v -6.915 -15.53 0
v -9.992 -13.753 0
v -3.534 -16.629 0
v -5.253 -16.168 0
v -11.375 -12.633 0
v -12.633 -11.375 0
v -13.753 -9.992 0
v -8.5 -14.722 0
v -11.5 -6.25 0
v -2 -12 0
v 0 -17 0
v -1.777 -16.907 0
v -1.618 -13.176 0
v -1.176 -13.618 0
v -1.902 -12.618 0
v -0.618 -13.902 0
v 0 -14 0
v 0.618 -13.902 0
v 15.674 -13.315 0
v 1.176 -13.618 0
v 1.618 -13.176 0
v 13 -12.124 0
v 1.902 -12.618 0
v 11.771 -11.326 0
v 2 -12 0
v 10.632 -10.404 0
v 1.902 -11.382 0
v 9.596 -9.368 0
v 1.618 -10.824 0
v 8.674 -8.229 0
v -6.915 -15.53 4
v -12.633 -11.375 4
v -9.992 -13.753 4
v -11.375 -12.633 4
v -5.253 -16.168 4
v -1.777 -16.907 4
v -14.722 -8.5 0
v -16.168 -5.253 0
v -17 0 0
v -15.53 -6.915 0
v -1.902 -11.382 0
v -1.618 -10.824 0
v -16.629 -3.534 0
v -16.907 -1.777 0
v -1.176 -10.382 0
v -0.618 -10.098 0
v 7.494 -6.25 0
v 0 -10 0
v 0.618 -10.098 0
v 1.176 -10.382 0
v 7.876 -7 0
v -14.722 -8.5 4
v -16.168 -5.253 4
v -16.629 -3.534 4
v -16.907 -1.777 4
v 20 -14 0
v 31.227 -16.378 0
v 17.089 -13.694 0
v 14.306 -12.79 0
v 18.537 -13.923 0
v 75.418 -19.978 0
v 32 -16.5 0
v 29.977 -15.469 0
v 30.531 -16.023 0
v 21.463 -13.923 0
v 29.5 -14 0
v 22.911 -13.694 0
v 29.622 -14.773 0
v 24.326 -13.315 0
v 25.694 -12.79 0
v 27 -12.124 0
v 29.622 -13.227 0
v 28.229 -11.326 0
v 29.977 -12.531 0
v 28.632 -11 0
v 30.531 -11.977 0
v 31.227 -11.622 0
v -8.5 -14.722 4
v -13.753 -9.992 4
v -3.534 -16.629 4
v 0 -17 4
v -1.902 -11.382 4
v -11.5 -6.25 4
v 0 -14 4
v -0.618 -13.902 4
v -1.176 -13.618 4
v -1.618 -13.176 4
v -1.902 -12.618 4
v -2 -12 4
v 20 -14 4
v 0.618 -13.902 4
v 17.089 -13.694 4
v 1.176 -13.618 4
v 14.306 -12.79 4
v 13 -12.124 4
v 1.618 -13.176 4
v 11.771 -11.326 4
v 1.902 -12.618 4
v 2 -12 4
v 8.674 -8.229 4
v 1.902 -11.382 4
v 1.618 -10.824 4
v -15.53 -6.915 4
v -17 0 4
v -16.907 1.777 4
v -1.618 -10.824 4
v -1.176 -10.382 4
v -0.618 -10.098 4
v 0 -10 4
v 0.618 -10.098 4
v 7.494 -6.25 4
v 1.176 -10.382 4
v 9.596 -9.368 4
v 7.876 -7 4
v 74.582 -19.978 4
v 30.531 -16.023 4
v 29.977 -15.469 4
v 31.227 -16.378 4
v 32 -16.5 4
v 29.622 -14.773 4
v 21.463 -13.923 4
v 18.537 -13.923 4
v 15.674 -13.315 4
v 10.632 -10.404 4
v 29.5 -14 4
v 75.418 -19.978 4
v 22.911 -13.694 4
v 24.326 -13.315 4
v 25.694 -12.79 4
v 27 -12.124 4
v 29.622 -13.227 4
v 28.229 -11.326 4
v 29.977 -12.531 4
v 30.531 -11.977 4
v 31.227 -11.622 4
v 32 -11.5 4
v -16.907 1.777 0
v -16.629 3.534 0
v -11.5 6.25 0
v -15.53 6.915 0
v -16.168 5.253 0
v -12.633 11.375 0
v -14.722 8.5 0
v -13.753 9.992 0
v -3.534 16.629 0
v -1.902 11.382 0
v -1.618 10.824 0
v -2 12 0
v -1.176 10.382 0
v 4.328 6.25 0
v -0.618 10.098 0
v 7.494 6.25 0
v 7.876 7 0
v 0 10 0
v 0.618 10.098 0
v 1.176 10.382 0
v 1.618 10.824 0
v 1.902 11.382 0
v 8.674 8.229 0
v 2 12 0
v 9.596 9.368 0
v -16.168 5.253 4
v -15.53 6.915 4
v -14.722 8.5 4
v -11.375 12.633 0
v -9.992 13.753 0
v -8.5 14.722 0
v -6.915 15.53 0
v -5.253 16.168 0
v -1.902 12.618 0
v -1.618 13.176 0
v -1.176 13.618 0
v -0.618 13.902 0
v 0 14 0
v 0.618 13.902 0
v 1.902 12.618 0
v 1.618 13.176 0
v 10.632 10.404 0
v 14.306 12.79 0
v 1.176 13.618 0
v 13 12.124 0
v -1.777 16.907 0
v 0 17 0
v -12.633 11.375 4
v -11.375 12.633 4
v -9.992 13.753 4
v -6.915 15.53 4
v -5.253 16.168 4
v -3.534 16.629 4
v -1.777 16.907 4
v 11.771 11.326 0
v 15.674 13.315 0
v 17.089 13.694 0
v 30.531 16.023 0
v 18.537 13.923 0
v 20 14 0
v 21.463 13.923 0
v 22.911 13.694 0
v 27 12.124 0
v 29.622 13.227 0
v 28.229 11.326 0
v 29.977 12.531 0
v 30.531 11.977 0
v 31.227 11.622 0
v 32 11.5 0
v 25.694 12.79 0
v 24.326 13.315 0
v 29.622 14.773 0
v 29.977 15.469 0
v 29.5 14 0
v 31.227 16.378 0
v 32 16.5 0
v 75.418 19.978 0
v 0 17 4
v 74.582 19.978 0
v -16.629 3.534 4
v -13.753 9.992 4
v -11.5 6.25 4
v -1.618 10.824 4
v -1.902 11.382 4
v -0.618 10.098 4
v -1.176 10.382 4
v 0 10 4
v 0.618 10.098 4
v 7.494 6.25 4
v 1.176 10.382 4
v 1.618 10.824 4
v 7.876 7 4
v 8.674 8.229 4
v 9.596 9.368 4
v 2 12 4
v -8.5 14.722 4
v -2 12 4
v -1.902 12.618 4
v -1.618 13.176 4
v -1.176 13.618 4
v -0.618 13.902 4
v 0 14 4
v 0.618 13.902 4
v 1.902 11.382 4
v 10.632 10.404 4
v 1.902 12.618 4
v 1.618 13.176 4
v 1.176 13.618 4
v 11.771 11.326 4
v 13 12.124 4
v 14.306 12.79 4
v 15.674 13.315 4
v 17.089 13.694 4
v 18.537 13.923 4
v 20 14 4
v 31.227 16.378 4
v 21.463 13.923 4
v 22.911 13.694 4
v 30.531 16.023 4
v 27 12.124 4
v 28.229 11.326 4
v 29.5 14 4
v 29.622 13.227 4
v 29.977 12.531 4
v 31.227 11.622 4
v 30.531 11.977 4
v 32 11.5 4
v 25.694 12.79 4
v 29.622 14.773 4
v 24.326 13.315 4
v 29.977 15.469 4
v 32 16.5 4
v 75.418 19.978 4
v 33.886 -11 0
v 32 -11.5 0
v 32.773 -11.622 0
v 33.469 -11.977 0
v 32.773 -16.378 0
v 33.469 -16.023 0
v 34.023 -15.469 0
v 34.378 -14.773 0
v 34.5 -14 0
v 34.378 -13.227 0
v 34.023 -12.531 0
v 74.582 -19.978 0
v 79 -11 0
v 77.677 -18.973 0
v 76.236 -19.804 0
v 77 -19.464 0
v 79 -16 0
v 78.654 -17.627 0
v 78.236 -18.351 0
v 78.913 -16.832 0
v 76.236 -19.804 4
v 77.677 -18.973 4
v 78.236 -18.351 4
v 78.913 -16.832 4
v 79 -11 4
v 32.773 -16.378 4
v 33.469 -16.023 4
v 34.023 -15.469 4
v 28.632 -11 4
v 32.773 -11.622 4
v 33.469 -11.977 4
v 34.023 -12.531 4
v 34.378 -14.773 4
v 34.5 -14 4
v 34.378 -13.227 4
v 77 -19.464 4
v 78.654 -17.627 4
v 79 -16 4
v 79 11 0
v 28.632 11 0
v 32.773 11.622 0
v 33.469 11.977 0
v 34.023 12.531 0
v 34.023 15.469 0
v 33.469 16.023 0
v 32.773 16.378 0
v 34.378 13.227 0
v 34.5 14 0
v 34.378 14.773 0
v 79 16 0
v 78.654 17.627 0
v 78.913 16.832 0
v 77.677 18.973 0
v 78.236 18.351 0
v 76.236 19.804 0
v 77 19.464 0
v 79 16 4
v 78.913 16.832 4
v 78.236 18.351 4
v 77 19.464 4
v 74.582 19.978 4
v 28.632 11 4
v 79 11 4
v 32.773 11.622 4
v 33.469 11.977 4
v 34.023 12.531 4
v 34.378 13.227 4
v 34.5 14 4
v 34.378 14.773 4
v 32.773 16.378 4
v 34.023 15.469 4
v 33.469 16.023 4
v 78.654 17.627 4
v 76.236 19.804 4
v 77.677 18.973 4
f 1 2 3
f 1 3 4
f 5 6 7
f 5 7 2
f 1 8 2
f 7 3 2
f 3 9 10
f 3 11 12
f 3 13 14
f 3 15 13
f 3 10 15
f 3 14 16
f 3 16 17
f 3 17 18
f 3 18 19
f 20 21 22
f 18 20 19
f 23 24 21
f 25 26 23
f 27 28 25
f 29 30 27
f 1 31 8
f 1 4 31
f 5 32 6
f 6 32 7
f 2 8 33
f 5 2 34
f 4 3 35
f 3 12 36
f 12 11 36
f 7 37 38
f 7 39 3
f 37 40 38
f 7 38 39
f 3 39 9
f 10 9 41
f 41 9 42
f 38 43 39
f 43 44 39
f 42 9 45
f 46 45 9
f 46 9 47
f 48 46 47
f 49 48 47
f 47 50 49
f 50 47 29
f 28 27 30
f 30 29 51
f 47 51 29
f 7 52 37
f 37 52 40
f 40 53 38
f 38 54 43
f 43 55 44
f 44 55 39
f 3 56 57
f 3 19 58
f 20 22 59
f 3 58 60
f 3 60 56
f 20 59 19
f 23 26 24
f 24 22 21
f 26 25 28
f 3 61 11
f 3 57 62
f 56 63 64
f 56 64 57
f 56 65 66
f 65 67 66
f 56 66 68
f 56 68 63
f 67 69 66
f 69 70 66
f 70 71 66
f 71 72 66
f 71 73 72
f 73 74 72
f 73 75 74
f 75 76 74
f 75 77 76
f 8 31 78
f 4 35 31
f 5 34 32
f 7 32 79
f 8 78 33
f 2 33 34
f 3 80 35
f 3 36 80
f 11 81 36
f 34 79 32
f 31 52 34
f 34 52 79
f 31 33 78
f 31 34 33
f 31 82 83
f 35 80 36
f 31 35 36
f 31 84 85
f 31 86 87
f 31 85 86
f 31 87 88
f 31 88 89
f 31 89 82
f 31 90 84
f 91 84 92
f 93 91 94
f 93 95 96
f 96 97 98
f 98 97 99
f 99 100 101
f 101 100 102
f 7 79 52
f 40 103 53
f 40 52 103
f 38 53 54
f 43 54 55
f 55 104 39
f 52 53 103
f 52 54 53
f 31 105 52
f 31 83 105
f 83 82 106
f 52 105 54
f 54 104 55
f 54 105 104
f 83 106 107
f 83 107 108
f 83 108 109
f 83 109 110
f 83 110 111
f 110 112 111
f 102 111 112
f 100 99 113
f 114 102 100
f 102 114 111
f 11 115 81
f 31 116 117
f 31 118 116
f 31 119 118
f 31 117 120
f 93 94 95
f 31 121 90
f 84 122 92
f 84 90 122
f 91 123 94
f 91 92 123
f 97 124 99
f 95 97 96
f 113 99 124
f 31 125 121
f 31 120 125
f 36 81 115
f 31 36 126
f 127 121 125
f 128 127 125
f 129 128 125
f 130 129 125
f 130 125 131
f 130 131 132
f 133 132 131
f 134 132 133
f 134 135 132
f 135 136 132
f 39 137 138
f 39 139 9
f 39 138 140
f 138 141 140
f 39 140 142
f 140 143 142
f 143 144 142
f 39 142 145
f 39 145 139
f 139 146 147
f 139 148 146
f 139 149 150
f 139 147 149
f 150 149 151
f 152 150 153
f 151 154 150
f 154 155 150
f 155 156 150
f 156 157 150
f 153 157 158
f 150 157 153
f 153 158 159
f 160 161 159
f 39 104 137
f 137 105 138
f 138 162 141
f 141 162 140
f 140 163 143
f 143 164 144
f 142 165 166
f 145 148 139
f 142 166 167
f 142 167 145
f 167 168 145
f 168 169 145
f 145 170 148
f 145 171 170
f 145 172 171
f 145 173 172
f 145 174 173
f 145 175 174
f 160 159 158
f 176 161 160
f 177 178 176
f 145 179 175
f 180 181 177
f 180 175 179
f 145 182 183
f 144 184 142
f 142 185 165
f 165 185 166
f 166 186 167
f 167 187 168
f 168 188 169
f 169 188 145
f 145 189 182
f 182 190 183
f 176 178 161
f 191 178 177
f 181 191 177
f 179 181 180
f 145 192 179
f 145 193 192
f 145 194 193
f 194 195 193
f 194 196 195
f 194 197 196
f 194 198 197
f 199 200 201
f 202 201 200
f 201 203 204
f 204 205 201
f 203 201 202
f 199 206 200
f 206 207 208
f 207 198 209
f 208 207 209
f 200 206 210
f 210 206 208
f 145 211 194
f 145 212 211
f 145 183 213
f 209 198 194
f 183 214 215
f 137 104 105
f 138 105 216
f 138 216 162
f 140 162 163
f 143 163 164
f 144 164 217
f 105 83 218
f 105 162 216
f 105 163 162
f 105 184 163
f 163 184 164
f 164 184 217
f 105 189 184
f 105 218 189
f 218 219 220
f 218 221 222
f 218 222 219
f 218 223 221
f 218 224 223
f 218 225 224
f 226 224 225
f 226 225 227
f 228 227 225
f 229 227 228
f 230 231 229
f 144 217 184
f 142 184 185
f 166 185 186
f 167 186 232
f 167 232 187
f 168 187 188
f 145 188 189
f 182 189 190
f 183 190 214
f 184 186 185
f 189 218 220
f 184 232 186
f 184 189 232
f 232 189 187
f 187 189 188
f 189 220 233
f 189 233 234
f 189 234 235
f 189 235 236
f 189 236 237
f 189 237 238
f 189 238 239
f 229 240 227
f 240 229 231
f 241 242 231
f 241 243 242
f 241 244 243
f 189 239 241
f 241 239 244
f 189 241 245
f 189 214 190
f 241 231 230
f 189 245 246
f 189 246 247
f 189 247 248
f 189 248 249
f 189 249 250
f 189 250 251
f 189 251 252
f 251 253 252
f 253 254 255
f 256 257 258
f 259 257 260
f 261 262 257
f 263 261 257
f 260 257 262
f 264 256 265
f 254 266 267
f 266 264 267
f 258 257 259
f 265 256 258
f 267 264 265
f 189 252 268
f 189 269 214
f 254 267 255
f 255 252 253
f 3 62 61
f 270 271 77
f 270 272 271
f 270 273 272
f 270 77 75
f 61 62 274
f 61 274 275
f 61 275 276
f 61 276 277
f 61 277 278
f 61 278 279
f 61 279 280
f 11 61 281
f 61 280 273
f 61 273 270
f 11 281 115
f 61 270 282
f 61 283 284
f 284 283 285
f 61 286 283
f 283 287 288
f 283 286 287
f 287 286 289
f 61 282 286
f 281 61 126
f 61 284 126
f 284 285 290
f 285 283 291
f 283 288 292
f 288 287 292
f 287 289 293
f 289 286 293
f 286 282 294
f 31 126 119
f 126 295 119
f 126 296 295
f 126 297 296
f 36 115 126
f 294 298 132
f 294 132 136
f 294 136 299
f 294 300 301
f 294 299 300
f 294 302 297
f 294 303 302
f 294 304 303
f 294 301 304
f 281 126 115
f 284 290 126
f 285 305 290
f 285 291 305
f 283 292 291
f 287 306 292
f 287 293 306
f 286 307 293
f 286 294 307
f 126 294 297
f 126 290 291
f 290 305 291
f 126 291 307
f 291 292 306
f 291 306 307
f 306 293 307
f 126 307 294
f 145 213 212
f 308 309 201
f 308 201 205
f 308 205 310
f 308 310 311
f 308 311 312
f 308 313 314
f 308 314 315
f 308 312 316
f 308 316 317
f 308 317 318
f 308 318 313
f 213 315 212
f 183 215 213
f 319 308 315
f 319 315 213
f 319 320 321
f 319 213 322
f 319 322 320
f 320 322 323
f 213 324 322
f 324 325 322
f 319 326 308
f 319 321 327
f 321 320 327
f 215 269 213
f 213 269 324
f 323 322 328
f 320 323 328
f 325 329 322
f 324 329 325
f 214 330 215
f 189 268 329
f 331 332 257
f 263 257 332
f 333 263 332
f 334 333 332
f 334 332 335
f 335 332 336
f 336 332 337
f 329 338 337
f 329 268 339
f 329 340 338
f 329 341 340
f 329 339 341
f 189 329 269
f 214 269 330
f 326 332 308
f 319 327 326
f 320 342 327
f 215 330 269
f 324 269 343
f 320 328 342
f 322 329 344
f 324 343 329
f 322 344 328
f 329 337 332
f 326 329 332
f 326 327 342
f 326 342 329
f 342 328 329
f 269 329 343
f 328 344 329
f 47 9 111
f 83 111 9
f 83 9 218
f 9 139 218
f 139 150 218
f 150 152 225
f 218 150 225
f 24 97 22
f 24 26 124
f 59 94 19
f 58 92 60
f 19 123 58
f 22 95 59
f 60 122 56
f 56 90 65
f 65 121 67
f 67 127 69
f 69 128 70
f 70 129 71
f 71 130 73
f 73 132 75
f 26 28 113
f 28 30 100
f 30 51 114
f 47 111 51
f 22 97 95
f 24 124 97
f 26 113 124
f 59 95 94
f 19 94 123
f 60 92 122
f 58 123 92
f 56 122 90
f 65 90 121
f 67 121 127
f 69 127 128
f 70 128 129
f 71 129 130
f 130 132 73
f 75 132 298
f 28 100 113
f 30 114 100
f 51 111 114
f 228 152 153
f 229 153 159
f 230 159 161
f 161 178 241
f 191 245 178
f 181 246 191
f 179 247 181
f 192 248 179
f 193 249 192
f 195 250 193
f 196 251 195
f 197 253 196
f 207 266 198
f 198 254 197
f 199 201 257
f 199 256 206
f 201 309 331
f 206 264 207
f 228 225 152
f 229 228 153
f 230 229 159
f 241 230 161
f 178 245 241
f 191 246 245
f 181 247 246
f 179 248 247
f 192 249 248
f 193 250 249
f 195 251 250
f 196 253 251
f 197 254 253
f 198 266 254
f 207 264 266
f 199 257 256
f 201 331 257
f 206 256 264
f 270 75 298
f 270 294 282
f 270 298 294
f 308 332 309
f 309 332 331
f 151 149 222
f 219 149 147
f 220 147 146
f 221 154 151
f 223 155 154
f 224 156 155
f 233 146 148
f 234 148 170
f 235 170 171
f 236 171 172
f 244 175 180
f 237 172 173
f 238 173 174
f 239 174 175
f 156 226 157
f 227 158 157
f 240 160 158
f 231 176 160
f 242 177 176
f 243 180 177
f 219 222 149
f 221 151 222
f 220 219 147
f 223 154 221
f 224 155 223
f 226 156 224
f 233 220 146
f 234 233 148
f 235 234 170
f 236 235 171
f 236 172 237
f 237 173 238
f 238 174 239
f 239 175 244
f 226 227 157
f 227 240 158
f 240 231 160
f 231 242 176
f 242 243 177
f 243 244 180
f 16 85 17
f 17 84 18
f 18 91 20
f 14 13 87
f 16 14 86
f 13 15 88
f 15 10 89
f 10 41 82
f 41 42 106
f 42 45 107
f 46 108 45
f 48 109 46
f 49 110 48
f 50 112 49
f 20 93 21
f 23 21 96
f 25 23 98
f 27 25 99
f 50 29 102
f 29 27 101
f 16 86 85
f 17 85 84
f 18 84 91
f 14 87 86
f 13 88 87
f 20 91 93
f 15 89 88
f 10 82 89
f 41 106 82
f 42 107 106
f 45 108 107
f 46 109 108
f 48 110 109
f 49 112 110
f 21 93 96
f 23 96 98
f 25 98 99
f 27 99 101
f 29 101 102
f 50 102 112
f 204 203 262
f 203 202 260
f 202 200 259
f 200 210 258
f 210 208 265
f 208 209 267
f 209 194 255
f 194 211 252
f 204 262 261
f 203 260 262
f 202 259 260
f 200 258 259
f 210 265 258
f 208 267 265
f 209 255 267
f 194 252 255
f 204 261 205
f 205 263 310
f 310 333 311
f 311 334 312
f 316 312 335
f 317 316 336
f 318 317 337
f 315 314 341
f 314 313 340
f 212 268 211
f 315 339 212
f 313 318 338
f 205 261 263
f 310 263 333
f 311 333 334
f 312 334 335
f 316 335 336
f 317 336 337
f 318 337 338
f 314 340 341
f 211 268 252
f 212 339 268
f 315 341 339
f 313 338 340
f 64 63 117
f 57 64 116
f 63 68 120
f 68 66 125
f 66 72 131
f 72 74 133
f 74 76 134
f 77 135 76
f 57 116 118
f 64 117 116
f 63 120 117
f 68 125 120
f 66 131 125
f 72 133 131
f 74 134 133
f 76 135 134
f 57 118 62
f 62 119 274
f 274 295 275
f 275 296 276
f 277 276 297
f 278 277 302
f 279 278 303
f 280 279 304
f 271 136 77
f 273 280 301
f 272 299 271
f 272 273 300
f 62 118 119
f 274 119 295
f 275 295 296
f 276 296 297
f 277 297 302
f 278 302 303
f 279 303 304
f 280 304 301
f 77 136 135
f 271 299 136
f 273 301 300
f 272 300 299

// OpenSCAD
// --- Módulo MMA-01 Sentinela: Garra de Microgravidade (Design Autoral) ---

// 1. Variáveis Paramétricas (Garante os pontos de "Ajustes")
tamanho_garra = 75;
espessura_peca = 4;
abertura_boca = 22;

// 2. Módulo Principal da Peça
module garra_sentinela() {
    difference() {
        // CORPO PRINCIPAL: Formato orgânico e reforçado usando 'hull'
        hull() {
            // Base circular robusta para o eixo do motor
            cylinder(d=34, h=espessura_peca, $fn=60);
            // Ponta superior do "dedo" da garra
            translate([tamanho_garra, 16, 0]) cylinder(d=8, h=espessura_peca, $fn=30);
            // Ponta inferior do "dedo" da garra
            translate([tamanho_garra, -16, 0]) cylinder(d=8, h=espessura_peca, $fn=30);
        }
        
        // SUBTRAÇÕES (O que tiramos da peça para moldá-la)
        
        // A. Encaixe central para Micro Servo 9g (23x12.5mm)
        translate([-11.5, -6.25, -1]) 
            cube([23, 12.5, espessura_peca + 2]);
            
        // B. Corte interno para formar os "dedos" em formato de 'C'
        translate([20, 0, -1]) 
            cylinder(d=28, h=espessura_peca + 2, $fn=60); // Fundo da boca
        translate([20, -abertura_boca/2, -1]) 
            cube([tamanho_garra, abertura_boca, espessura_peca + 2]); // Abertura frontal
            
        // C. Furos de Alívio de Massa (Garante pontos de "Microgravidade")
        translate([0, 12, -1]) cylinder(d=4, h=espessura_peca + 2, $fn=20);
        translate([0, -12, -1]) cylinder(d=4, h=espessura_peca + 2, $fn=20);
        translate([32, 14, -1]) cylinder(d=5, h=espessura_peca + 2, $fn=20);
        translate([32, -14, -1]) cylinder(d=5, h=espessura_peca + 2, $fn=20);
    }
}

// Renderiza a garra final
garra_sentinela();
